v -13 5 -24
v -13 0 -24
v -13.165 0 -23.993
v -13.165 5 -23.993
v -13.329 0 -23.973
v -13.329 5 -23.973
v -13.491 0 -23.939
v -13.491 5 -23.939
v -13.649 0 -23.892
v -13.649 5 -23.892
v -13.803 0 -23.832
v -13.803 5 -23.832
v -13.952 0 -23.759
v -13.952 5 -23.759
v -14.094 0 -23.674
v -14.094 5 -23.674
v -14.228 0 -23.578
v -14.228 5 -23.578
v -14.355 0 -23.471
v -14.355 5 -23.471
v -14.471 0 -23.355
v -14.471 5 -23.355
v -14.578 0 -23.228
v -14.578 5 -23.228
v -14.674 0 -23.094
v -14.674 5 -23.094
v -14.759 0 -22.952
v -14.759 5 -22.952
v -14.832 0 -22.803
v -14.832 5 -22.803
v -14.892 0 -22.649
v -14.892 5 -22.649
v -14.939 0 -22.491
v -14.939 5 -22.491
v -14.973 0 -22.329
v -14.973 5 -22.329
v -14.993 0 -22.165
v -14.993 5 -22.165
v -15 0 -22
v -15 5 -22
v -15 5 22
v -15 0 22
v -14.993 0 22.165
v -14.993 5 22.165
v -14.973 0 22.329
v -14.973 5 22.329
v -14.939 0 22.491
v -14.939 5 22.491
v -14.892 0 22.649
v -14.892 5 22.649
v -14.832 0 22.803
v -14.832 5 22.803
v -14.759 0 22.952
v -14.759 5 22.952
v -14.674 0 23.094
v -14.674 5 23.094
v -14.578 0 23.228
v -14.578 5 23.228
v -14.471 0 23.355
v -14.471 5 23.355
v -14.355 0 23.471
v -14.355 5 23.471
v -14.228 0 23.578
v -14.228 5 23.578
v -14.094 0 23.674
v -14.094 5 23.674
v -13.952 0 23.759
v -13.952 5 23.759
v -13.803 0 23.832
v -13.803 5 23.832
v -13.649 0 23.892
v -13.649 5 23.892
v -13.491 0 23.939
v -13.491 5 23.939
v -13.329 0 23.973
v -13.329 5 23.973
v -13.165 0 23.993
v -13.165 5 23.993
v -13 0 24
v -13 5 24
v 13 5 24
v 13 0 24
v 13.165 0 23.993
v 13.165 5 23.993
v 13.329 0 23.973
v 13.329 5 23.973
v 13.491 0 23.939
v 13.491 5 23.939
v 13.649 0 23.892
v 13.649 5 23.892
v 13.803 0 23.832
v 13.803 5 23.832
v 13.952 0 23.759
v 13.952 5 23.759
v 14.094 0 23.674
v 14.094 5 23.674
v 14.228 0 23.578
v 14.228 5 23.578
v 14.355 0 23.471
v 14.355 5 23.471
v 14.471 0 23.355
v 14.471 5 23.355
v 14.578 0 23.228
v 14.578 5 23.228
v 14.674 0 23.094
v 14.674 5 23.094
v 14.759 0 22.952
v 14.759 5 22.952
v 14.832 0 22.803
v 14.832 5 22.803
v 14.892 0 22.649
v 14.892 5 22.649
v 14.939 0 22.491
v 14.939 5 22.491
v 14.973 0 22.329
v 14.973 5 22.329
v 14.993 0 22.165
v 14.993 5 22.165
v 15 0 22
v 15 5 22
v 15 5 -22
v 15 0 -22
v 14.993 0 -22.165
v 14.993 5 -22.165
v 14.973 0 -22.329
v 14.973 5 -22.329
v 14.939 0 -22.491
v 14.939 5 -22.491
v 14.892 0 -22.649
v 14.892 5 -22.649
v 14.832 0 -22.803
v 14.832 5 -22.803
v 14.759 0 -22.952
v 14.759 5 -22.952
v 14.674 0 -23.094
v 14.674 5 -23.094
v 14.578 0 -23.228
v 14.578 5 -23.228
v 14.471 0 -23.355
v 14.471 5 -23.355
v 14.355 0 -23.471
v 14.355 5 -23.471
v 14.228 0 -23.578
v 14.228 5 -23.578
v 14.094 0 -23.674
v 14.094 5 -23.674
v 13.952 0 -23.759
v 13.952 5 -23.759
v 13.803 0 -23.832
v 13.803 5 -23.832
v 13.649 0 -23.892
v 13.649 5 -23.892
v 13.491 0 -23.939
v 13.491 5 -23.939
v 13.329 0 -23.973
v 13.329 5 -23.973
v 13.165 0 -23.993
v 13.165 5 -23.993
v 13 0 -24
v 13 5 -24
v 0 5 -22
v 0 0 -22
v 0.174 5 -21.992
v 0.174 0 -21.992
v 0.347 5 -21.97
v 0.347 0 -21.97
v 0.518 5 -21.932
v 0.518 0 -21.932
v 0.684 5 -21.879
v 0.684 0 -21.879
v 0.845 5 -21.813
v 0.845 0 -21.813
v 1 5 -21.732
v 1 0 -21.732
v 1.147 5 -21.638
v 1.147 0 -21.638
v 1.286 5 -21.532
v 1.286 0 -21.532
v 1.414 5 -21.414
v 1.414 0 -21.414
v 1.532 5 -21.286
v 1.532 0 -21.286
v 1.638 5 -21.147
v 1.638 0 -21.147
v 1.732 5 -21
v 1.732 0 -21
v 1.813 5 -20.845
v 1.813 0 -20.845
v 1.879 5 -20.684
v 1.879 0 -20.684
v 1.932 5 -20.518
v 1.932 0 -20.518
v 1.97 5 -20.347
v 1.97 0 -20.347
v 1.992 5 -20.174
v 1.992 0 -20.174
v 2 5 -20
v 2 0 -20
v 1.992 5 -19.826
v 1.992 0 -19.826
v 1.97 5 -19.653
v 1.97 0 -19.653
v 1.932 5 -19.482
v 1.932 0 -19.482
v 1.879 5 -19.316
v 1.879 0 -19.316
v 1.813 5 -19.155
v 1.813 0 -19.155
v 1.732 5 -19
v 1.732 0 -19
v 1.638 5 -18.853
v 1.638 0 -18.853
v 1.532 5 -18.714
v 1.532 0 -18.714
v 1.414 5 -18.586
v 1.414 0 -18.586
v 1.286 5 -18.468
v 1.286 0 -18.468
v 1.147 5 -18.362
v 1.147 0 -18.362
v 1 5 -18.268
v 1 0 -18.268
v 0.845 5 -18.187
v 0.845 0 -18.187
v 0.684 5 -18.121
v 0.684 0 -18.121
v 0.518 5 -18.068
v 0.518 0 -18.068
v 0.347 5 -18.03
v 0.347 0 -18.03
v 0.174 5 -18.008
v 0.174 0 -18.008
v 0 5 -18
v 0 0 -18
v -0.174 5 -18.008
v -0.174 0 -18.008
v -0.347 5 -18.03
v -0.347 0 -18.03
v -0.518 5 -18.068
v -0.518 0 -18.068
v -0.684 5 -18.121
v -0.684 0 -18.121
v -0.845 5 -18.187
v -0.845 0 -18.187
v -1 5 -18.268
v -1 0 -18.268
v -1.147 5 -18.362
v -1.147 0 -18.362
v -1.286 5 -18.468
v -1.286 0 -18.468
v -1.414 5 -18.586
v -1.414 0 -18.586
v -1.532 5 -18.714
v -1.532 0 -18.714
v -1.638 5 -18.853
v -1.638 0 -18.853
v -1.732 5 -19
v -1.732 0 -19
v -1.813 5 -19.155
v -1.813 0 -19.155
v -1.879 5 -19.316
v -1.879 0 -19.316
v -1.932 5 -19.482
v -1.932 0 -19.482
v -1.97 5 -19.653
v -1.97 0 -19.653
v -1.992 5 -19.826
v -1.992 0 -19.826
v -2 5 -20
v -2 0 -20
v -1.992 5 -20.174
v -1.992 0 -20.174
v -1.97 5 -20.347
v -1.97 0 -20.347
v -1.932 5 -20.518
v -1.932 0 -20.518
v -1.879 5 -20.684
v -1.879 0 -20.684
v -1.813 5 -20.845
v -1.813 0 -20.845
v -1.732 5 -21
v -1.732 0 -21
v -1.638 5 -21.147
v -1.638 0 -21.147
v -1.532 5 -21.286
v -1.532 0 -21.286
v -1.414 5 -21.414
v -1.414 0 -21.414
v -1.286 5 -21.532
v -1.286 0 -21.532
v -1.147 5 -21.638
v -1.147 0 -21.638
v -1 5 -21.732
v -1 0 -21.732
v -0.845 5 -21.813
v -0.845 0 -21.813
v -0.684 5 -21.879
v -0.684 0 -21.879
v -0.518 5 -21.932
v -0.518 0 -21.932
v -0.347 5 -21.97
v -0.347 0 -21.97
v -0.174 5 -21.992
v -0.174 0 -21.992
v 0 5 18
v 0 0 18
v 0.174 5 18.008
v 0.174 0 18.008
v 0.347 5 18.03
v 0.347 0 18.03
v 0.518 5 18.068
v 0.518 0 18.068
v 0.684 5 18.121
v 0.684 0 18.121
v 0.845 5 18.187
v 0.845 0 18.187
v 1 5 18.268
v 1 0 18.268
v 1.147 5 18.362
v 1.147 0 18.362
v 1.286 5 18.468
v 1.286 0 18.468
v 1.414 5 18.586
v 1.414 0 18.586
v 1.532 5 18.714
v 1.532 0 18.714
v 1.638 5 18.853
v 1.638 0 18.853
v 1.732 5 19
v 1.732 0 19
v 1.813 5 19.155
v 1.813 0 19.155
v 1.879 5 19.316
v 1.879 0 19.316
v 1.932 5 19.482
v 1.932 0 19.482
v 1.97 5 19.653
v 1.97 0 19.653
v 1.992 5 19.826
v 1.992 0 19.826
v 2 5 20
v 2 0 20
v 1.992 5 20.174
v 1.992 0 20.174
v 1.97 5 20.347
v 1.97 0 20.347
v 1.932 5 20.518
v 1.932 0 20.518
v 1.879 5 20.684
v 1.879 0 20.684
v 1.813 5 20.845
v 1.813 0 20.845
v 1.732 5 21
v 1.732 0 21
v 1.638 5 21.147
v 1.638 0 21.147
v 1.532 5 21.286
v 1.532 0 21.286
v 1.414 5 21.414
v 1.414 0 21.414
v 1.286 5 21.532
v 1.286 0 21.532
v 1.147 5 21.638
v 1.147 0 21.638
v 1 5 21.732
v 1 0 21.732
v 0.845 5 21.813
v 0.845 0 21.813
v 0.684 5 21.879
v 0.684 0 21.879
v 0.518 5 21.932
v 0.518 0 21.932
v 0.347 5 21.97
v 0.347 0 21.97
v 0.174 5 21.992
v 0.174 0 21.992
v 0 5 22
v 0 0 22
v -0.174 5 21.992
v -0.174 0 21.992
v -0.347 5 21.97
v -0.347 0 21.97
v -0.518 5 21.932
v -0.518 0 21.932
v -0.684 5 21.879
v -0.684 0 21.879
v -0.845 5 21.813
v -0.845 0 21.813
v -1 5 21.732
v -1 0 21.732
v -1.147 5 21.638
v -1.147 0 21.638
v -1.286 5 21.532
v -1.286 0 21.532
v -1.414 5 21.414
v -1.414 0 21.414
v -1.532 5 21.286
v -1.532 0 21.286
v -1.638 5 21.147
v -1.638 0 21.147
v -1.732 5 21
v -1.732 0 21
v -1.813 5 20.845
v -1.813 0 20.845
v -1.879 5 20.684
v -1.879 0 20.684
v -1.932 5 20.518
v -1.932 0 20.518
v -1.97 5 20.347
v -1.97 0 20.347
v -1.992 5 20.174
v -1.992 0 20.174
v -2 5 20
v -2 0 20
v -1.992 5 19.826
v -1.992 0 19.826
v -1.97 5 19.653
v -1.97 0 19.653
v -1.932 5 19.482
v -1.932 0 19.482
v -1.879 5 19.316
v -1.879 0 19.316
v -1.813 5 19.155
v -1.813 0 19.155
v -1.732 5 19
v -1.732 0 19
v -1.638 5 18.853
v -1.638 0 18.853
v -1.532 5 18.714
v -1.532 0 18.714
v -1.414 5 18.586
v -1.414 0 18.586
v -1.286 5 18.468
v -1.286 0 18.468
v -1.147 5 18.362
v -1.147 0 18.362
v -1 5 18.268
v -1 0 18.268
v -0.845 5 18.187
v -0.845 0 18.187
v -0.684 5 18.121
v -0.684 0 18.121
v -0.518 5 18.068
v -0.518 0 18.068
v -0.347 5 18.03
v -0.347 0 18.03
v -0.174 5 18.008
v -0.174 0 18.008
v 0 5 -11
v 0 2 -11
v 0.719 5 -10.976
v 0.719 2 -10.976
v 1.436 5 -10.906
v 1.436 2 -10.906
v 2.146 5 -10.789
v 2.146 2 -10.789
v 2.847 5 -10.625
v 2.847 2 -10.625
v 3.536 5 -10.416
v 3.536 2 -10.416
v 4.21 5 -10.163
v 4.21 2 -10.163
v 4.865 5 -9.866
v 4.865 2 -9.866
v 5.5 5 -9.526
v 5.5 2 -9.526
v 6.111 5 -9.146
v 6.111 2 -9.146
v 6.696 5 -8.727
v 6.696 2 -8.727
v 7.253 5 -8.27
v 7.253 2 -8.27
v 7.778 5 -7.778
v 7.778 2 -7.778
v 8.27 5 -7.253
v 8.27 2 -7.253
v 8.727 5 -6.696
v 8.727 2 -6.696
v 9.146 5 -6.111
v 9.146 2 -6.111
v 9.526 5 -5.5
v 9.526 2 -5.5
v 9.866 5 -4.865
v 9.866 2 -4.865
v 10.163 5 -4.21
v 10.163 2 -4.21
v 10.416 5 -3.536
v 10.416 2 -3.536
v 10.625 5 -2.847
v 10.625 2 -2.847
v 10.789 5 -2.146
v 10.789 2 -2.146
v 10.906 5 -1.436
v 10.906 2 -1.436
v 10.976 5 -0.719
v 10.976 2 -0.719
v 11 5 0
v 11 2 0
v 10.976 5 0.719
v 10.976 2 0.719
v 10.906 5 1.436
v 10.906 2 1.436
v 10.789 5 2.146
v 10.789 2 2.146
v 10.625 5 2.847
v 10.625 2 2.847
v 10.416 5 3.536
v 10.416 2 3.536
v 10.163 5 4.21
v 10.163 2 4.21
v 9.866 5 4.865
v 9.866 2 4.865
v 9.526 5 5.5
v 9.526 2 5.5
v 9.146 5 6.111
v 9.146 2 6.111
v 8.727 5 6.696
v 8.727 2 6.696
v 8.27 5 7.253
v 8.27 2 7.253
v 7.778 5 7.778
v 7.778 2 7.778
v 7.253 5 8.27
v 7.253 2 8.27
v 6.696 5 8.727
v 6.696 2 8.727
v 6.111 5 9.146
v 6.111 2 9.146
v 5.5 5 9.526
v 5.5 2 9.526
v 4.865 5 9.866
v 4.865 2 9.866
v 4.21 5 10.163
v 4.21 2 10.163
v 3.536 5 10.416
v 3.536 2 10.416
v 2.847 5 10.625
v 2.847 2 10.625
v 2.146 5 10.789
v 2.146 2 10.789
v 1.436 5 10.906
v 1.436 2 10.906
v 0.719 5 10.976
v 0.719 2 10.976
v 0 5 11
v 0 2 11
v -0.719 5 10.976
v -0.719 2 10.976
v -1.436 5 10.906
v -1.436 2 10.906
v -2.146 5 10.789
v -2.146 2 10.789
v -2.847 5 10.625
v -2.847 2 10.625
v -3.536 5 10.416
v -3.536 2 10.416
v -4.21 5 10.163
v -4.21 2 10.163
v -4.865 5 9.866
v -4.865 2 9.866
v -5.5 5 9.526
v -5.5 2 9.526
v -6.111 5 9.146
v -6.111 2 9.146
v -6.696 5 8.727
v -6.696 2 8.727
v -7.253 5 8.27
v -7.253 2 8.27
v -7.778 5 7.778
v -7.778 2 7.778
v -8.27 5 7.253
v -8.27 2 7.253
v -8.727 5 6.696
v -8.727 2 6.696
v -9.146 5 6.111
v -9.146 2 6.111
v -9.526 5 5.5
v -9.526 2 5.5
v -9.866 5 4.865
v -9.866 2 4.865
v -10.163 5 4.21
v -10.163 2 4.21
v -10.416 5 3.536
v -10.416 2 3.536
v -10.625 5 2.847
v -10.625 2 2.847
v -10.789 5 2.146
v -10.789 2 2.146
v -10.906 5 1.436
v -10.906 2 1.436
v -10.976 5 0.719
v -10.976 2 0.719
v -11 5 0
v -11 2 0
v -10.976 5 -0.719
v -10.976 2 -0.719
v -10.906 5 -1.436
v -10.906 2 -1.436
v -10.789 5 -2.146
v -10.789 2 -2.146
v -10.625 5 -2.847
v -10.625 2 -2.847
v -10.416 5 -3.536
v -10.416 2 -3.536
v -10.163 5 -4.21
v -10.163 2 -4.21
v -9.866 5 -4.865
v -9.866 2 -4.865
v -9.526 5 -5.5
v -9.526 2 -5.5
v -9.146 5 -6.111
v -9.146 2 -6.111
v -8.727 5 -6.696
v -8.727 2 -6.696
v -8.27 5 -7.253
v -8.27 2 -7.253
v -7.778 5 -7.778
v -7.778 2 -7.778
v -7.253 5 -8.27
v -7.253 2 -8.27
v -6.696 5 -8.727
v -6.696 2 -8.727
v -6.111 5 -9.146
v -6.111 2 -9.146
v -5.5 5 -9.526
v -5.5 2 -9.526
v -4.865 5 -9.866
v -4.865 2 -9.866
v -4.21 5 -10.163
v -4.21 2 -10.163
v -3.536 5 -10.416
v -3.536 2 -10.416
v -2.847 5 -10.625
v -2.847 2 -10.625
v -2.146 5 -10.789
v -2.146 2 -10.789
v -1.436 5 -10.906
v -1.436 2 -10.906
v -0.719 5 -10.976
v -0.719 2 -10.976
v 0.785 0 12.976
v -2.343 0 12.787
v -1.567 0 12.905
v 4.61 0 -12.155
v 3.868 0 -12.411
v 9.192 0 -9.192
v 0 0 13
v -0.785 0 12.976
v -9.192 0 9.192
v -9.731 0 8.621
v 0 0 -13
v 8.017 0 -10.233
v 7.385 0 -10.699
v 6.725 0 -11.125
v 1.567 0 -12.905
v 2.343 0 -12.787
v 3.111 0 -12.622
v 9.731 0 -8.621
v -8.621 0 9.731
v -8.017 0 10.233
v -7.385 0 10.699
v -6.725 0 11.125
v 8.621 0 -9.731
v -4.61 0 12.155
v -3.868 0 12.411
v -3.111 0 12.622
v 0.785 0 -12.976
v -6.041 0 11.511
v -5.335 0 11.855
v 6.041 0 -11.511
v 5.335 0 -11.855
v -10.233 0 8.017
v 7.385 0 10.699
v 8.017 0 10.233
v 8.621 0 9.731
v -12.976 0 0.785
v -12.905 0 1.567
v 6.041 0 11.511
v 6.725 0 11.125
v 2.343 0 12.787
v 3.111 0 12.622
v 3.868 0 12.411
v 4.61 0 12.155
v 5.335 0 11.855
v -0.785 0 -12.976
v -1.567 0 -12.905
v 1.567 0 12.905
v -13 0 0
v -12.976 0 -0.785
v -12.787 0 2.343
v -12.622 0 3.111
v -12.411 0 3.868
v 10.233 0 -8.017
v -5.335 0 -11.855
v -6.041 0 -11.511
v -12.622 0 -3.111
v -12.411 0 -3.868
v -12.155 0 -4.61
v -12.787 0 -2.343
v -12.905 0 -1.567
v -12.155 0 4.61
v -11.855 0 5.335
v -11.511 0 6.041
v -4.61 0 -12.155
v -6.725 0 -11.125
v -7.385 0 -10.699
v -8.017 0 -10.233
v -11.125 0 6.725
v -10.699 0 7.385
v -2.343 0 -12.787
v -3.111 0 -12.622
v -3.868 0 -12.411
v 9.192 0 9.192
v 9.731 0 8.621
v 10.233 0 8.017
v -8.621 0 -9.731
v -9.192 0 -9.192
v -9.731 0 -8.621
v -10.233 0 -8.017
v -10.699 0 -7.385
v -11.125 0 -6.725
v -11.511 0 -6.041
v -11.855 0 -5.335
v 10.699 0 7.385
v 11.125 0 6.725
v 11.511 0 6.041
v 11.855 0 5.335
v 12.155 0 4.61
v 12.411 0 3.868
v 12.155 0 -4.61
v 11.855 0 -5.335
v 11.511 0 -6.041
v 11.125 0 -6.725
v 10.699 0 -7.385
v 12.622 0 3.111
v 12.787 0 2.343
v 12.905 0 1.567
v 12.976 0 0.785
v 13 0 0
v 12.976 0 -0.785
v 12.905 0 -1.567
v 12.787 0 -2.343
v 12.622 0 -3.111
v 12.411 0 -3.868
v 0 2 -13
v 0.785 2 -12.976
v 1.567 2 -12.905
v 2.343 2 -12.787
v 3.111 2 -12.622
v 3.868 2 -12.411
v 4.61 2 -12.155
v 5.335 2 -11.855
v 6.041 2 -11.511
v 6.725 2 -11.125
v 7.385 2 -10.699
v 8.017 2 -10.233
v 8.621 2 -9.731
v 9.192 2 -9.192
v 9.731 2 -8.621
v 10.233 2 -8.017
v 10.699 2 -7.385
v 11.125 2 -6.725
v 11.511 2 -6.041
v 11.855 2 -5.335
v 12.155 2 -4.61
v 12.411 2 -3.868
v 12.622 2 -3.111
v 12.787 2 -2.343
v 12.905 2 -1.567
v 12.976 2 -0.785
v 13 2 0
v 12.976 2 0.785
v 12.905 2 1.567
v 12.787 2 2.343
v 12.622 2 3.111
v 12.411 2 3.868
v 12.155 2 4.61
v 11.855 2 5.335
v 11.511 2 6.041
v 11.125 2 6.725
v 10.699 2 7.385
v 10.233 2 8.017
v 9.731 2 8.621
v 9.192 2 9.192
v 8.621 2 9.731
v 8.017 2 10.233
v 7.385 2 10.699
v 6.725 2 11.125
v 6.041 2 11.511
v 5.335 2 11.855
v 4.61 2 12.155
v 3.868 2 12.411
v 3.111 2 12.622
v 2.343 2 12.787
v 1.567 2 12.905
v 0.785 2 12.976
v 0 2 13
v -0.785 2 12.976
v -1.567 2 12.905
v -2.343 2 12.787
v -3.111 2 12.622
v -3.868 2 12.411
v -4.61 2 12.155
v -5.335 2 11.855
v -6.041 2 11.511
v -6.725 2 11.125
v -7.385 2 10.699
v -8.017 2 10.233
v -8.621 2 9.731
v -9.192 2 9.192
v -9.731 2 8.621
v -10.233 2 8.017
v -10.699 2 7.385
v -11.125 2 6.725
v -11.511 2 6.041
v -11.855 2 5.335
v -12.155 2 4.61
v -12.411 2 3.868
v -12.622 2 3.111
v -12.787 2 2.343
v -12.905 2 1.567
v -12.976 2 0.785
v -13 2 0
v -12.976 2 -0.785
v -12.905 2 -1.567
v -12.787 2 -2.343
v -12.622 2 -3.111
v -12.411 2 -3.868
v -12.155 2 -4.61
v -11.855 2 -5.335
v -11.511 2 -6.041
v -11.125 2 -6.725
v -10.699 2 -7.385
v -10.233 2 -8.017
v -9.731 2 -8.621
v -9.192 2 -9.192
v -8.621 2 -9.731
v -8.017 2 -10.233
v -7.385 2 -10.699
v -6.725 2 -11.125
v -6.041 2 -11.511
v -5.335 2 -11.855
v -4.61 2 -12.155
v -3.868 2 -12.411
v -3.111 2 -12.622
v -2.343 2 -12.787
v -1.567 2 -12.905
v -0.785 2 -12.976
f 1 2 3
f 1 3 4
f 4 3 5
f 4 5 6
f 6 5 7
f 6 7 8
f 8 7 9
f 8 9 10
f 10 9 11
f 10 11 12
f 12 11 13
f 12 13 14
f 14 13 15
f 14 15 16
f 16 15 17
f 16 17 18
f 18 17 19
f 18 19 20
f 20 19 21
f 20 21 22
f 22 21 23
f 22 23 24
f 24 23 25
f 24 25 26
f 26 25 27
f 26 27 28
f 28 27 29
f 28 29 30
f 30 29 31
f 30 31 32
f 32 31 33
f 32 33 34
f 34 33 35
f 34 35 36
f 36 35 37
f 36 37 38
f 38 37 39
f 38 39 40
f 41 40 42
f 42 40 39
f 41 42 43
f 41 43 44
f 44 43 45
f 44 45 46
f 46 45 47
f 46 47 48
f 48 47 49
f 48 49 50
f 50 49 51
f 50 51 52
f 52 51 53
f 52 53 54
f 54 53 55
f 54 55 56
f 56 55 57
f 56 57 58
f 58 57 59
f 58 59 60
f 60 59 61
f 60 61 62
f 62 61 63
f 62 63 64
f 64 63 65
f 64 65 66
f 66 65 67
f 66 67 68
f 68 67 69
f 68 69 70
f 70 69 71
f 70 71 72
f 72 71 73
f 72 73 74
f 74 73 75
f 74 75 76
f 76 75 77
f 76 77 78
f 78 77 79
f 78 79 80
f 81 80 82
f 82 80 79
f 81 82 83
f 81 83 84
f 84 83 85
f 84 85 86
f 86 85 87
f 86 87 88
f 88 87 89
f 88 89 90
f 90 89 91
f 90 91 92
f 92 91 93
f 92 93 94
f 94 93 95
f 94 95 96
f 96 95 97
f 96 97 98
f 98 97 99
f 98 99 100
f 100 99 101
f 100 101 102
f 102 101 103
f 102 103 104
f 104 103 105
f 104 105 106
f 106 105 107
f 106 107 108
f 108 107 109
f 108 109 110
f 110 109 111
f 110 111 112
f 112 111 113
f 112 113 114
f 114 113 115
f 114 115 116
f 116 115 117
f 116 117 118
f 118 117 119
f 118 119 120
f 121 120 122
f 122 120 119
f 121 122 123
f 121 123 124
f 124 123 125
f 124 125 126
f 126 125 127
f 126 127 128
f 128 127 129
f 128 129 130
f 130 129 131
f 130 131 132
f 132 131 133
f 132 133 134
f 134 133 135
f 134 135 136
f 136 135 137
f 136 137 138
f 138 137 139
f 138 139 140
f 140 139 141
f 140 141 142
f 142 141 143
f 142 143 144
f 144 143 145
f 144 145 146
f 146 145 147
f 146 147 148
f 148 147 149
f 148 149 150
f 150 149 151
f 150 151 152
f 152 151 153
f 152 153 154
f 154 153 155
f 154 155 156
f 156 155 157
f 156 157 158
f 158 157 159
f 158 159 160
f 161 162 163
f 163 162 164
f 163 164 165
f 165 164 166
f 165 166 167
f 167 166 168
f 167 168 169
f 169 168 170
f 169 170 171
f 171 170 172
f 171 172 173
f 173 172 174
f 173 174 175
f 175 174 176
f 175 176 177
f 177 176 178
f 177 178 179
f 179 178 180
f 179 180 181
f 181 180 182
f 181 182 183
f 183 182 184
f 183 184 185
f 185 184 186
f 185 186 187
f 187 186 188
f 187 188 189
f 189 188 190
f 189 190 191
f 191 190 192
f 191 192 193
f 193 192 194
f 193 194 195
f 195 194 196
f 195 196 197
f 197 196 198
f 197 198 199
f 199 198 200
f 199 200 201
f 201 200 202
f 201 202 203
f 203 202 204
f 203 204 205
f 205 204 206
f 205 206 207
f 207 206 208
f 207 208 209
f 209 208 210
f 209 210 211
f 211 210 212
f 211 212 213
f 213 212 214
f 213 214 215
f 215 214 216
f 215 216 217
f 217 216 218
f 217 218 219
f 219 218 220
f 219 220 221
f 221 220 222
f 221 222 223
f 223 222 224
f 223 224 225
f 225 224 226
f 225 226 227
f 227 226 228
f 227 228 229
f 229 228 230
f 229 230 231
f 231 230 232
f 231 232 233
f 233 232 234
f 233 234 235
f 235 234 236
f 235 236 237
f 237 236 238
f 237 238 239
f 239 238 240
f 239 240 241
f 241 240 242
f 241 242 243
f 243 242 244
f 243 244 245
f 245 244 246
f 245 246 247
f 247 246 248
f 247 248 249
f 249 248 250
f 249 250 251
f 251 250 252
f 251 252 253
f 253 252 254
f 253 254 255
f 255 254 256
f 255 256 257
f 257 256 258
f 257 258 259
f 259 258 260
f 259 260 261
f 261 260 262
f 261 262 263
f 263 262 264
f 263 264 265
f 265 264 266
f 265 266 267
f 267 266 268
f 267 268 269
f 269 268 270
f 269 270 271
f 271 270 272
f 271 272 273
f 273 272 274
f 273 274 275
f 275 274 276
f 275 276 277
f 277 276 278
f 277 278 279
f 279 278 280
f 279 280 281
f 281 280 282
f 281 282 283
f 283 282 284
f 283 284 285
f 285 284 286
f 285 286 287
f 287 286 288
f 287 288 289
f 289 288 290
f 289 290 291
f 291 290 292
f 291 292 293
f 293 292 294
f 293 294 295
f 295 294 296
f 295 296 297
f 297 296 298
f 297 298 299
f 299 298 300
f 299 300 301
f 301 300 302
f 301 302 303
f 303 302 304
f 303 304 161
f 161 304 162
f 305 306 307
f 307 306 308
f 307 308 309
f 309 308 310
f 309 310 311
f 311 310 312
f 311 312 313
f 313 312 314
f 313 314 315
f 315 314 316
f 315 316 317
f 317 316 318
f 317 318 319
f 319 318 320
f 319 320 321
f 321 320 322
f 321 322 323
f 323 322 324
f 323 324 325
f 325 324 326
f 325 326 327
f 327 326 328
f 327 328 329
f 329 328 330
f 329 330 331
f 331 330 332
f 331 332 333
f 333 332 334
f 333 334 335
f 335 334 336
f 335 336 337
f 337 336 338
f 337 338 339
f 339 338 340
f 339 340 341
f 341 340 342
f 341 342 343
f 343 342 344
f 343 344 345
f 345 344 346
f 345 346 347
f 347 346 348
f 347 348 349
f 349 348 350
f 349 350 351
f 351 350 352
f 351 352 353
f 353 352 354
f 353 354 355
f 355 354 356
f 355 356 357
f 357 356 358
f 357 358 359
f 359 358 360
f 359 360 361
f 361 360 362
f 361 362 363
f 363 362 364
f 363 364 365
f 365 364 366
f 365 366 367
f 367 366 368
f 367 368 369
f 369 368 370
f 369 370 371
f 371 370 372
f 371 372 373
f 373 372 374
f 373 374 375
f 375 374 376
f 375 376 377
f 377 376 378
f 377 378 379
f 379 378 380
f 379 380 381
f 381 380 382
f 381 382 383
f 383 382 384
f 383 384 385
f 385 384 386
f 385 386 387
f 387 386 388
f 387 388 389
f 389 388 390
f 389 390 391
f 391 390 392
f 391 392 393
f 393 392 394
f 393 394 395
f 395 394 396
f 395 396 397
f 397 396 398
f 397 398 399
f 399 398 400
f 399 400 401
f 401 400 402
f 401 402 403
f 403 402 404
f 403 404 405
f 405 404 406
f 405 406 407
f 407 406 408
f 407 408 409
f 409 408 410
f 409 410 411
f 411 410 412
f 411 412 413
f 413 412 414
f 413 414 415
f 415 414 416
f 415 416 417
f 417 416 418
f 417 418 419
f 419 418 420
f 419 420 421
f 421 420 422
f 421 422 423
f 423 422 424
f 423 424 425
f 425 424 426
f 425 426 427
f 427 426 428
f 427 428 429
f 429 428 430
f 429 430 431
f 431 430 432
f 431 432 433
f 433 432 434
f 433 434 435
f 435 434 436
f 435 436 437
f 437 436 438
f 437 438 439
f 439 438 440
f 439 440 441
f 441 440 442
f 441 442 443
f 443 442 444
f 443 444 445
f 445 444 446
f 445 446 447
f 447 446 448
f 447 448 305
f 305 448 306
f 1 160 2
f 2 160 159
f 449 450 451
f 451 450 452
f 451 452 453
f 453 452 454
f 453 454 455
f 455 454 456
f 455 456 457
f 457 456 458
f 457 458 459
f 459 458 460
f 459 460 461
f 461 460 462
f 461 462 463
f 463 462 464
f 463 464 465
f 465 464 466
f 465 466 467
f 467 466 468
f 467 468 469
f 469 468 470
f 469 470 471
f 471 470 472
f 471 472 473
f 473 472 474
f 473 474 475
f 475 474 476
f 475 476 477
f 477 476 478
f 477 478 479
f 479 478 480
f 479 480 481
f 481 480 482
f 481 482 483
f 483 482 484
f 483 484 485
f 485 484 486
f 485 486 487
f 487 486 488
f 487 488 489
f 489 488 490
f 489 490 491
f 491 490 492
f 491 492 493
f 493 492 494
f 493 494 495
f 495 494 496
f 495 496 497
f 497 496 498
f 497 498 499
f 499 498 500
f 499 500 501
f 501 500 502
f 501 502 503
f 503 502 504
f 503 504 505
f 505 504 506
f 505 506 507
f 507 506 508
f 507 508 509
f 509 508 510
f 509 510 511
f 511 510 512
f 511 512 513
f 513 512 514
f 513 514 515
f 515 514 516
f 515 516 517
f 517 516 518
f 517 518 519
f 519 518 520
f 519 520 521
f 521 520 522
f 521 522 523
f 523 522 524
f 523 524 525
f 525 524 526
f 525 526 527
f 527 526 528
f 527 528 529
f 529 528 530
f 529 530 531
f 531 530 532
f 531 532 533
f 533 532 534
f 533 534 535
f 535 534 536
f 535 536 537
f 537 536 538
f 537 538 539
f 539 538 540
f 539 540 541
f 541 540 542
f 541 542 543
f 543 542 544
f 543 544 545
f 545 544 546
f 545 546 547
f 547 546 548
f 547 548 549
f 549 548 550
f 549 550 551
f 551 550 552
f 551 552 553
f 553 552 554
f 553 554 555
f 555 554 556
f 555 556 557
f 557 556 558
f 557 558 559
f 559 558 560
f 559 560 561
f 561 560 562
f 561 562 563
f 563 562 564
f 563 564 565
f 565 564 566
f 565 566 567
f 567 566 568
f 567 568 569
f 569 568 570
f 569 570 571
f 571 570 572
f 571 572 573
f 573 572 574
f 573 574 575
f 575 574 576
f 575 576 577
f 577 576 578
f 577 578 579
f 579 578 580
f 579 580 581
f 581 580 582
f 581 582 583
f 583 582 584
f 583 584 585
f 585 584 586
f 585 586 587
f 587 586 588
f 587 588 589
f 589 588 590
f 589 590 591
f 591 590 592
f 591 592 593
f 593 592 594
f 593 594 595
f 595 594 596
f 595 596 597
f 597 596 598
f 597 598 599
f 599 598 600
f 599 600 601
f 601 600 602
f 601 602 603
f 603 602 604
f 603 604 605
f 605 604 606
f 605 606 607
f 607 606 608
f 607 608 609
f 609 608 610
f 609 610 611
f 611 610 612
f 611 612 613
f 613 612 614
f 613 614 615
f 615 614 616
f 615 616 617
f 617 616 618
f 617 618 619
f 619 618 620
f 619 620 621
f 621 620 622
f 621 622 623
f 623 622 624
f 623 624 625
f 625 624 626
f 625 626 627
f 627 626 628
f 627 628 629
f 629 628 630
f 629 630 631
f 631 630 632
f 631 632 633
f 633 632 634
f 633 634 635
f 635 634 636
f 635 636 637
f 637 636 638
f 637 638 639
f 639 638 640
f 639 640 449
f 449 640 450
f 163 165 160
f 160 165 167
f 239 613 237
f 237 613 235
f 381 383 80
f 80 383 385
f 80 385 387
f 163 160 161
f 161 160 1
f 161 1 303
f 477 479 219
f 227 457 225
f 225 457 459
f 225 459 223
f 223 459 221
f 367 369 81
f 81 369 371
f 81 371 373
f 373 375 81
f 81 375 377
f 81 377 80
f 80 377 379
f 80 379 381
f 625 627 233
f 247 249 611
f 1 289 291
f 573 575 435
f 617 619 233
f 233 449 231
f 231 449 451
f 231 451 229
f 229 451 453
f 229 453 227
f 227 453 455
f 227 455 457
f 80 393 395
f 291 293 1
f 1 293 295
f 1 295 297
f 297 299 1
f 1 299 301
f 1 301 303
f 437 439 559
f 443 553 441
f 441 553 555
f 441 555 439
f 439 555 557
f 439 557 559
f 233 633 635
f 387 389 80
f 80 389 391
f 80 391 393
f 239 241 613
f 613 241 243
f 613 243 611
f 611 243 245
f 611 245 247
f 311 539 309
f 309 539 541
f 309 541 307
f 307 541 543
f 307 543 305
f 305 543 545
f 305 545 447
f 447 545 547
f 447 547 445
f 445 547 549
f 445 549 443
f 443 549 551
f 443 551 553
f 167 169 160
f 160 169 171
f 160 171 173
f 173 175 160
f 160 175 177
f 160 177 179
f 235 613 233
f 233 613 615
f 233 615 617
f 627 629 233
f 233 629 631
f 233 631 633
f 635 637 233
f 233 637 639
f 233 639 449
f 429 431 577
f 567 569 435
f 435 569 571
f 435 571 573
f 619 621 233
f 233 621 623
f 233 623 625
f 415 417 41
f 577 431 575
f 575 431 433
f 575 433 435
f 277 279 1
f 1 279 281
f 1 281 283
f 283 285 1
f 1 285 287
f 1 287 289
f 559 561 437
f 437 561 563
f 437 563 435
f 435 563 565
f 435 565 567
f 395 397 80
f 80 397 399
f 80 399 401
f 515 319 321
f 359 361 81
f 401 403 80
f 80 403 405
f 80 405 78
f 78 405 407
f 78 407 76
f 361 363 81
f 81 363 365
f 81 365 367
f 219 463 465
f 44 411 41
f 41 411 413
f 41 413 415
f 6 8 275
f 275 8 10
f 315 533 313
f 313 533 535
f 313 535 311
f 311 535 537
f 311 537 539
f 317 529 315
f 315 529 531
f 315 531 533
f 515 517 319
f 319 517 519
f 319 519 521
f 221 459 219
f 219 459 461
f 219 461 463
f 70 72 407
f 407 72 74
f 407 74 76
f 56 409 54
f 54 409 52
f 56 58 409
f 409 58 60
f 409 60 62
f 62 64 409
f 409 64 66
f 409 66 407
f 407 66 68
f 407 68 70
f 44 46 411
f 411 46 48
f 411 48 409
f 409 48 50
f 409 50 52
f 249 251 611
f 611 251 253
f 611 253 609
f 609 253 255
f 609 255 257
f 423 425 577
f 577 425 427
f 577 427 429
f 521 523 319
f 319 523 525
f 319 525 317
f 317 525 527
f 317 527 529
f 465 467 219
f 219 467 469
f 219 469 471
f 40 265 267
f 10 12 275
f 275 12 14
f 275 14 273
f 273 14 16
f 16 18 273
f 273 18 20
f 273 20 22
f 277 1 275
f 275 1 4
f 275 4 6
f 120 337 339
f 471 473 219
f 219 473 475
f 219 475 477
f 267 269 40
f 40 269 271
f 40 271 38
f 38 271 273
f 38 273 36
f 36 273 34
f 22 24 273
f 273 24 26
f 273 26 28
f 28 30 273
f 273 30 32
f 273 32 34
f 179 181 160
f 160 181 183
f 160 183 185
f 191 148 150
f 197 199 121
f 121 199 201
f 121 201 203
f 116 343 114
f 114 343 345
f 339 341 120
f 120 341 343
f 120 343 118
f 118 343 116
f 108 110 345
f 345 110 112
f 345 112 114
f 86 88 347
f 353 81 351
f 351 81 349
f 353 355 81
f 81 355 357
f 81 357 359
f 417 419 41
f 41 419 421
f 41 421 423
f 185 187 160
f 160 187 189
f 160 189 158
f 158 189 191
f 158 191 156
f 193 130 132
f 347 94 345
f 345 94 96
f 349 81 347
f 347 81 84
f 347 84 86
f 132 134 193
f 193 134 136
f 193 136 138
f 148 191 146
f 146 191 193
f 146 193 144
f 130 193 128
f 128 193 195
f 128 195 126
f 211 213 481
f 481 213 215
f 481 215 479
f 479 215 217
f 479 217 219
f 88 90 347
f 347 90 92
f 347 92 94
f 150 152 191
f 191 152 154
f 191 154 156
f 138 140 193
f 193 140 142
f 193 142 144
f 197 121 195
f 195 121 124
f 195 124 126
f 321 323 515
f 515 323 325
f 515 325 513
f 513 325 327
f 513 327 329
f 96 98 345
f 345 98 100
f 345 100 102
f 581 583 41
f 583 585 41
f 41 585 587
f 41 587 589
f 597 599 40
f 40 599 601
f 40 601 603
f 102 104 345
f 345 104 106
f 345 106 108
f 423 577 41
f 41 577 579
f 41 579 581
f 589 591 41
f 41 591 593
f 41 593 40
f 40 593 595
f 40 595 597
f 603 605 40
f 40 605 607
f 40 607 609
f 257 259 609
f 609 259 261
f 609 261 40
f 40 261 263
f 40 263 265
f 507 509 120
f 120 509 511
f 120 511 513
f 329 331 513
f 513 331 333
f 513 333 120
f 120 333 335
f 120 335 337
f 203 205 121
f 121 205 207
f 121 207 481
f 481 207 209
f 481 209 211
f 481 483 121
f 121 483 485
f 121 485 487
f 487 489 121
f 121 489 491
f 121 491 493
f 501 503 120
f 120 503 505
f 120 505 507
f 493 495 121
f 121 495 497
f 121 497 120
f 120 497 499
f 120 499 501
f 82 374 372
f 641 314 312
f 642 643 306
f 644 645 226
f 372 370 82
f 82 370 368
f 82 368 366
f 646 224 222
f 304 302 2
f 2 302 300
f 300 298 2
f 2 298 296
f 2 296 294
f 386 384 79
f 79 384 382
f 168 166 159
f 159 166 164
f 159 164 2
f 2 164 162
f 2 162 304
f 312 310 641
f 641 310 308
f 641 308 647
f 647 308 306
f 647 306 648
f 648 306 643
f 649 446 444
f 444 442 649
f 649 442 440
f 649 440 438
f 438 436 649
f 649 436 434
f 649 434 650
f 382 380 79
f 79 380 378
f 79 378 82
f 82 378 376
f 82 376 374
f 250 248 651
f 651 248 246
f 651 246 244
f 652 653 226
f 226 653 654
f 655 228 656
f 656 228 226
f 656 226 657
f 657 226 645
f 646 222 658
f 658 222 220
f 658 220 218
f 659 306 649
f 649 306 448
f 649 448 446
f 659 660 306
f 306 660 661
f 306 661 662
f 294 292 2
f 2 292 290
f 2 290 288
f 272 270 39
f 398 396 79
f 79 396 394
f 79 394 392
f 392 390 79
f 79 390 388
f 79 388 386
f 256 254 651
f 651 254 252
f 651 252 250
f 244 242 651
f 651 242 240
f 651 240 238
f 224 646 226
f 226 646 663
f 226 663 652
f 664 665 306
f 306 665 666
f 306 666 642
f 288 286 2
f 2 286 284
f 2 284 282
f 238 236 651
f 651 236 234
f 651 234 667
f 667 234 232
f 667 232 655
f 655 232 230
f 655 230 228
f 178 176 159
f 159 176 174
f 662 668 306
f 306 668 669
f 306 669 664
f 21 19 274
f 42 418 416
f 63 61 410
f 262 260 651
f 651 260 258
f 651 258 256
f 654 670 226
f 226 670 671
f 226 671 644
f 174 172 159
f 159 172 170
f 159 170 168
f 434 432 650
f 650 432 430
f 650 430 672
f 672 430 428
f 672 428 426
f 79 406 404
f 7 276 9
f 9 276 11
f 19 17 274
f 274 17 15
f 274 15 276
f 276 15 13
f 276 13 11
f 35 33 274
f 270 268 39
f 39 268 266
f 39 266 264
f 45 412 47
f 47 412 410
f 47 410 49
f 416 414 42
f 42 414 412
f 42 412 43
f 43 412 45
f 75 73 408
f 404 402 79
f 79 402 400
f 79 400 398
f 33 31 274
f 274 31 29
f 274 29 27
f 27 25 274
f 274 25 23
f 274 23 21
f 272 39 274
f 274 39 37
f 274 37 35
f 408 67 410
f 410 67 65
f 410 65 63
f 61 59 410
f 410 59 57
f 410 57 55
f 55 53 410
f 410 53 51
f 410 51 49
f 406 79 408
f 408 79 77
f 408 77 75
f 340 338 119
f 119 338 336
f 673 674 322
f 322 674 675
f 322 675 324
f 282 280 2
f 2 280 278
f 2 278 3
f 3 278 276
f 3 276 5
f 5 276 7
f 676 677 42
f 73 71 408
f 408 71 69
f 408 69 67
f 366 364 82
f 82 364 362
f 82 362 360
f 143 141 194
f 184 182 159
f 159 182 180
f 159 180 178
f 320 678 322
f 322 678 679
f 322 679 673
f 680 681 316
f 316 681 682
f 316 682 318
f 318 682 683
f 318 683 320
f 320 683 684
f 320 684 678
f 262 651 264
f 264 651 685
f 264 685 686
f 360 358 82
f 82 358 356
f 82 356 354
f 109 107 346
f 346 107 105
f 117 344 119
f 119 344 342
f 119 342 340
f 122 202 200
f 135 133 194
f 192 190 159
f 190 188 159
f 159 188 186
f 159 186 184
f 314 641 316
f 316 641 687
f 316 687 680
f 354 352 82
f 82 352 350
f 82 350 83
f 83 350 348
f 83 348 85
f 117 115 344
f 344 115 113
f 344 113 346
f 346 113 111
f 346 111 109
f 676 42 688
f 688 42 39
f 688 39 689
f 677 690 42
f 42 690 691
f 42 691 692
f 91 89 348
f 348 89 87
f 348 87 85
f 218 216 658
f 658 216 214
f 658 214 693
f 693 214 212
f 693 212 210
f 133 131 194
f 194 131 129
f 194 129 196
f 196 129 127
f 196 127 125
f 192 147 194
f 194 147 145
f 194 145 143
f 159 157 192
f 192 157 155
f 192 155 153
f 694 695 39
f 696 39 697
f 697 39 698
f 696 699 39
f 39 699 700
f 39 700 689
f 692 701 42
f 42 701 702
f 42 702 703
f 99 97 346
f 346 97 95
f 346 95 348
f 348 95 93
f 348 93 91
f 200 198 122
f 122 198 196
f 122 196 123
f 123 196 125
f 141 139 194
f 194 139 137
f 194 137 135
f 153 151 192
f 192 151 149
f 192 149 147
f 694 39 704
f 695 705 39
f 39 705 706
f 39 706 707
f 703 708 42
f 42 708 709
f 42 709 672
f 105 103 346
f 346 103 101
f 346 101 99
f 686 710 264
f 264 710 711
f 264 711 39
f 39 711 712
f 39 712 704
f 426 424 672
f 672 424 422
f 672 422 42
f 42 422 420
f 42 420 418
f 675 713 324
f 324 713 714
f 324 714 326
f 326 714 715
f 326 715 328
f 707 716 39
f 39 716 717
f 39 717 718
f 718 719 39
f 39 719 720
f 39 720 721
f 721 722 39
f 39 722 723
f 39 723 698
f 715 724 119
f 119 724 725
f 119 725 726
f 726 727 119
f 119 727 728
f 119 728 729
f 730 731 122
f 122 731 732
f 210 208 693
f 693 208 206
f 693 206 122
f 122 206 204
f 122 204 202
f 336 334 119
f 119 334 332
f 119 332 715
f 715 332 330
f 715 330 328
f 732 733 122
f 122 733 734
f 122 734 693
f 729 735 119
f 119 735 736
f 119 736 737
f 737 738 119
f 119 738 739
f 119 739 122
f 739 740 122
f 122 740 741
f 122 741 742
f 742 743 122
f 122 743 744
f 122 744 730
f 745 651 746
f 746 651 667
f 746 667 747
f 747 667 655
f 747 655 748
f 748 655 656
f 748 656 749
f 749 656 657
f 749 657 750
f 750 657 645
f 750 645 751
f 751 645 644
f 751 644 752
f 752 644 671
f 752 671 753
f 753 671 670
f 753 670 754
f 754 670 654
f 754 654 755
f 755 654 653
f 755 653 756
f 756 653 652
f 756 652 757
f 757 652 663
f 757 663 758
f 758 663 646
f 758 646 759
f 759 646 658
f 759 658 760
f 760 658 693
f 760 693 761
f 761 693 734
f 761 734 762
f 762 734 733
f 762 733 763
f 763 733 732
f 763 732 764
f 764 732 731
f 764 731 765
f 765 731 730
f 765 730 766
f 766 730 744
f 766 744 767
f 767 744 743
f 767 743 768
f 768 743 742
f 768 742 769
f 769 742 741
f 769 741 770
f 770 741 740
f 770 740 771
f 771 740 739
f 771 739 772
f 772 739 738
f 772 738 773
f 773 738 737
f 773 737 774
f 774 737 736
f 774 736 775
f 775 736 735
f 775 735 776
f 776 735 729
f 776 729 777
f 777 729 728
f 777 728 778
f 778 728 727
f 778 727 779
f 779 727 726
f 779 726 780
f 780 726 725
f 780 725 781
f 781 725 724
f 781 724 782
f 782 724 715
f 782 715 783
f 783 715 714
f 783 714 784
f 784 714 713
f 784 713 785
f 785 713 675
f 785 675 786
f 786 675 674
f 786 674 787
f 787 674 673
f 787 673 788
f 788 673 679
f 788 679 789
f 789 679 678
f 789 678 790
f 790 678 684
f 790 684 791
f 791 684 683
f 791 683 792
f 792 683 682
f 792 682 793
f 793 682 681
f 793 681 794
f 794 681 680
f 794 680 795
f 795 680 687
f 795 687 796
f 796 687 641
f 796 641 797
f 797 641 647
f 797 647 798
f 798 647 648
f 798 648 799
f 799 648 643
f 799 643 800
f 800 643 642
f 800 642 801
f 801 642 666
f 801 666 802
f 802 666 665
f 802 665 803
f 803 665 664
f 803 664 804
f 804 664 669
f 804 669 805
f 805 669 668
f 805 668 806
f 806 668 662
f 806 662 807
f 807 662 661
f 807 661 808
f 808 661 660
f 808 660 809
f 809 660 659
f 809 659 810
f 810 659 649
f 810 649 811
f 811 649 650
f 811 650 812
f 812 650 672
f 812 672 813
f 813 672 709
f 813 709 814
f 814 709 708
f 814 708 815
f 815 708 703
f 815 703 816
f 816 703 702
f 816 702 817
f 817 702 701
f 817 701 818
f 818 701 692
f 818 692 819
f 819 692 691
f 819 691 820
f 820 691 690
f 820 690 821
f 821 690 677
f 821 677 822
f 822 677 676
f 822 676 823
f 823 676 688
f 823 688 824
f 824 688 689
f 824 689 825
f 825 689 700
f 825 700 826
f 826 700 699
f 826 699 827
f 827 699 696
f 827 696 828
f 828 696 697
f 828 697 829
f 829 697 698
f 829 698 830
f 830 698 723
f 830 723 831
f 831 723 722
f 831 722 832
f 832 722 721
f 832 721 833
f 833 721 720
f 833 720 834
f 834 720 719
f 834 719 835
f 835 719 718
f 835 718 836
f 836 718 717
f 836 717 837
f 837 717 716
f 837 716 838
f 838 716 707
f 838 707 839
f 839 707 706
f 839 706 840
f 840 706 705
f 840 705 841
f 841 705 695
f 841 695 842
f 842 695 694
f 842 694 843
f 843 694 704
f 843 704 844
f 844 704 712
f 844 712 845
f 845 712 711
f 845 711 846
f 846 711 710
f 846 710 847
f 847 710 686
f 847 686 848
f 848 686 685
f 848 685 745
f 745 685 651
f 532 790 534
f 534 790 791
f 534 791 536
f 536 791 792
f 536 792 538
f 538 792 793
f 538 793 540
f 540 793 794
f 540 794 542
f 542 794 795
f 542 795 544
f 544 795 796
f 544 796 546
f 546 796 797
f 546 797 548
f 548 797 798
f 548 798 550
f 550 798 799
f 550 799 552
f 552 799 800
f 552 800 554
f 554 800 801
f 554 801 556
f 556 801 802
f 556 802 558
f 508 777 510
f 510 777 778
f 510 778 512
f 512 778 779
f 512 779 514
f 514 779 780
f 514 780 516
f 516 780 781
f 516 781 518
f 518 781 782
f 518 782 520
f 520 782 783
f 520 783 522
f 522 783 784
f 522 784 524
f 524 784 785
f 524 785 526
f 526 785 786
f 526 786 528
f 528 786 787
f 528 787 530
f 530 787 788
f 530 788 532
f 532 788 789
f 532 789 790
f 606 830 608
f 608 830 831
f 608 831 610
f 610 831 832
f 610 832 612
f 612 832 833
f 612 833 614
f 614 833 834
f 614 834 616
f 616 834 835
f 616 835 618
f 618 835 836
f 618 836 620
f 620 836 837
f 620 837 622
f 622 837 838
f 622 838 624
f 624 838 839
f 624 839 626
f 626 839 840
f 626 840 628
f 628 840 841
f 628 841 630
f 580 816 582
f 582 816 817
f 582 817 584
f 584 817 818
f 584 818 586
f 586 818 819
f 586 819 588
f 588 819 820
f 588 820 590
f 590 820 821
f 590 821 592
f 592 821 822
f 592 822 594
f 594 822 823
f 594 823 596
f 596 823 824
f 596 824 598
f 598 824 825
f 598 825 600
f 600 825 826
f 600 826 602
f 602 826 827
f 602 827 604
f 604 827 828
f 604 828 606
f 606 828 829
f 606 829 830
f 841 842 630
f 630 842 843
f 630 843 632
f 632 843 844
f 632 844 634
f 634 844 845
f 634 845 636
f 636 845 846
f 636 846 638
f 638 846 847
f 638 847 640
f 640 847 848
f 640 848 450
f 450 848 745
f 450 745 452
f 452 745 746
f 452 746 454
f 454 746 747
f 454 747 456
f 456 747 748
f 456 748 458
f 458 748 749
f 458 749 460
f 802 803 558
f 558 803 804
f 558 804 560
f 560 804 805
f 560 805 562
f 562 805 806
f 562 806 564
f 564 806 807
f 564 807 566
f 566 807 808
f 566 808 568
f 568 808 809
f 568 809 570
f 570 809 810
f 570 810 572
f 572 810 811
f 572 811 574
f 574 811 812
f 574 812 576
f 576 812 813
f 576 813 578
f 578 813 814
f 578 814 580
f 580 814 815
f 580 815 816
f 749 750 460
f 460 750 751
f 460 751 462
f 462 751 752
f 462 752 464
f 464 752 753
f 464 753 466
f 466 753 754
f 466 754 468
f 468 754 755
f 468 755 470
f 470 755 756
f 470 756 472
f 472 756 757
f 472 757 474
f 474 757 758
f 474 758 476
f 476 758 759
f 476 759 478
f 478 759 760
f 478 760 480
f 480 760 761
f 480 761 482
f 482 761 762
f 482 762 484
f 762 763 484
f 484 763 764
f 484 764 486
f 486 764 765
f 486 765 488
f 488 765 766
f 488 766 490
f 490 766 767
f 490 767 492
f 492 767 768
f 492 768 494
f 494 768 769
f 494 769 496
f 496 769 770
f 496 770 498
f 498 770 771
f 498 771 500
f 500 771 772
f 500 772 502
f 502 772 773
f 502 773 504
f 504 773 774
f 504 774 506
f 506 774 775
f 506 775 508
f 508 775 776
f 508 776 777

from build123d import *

# Parameters (mm, degrees)
SKETCH_1_R          = 2
SKETCH_1_R_2        = 11
EXTRUDE_1_DEPTH     = 5
SKETCH_1_4_R        = 13
SKETCH_1_4_R_2      = 11
CUT_EXTRUDE_1_DEPTH = 2


with BuildPart() as part:
    # 草图1 → 凸台-拉伸1 (new body)
    with BuildSketch(Plane(origin=(0, 0, 0), x_dir=(1, 0, 0), z_dir=(0, 1, 0))):
        with BuildLine():
            Line((-15, 22), (-15, -22))
            ThreePointArc((-15, -22), (-14.414213562, -23.414213562), (-13, -24))
            Line((-13, -24), (13, -24))
            ThreePointArc((13, -24), (14.414213562, -23.414213562), (15, -22))
            Line((15, -22), (15, 22))
            ThreePointArc((15, 22), (14.414213562, 23.414213562), (13, 24))
            Line((13, 24), (-13, 24))
            ThreePointArc((-13, 24), (-14.414213562, 23.414213562), (-15, 22))
        make_face()
        with Locations((0, -20)):
            Circle(SKETCH_1_R, mode=Mode.SUBTRACT)
        with Locations((0, 20)):
            Circle(SKETCH_1_R, mode=Mode.SUBTRACT)
        Circle(SKETCH_1_R_2, mode=Mode.SUBTRACT)
    extrude(amount=EXTRUDE_1_DEPTH)

    # 草图1<4> → 切除-拉伸1 (cut)
    with BuildSketch(Plane(origin=(0, 0, 0), x_dir=(1, 0, 0), z_dir=(0, 1, 0))):
        Circle(SKETCH_1_4_R)
        Circle(SKETCH_1_4_R_2, mode=Mode.SUBTRACT)
    extrude(amount=CUT_EXTRUDE_1_DEPTH, mode=Mode.SUBTRACT)


solid = part.part
